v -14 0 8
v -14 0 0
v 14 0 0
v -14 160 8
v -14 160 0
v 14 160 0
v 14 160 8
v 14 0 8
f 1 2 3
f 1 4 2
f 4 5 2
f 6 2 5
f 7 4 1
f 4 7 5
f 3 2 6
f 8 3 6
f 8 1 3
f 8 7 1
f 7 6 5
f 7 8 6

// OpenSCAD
// M13 wrench
// Geometry follows the holder clearance profile. Its dimensions describe the pocket used in the source design. Physical tool dimensions and fit have yet to be measured.
// Units: mm
$fn = 64;
union() {
    translate([0, 0, 0]) rotate([0, 0, 0])
        linear_extrude(height=8) polygon(points=[[-14, 0], [-14, 160], [14, 160], [14, 0]]);
}
